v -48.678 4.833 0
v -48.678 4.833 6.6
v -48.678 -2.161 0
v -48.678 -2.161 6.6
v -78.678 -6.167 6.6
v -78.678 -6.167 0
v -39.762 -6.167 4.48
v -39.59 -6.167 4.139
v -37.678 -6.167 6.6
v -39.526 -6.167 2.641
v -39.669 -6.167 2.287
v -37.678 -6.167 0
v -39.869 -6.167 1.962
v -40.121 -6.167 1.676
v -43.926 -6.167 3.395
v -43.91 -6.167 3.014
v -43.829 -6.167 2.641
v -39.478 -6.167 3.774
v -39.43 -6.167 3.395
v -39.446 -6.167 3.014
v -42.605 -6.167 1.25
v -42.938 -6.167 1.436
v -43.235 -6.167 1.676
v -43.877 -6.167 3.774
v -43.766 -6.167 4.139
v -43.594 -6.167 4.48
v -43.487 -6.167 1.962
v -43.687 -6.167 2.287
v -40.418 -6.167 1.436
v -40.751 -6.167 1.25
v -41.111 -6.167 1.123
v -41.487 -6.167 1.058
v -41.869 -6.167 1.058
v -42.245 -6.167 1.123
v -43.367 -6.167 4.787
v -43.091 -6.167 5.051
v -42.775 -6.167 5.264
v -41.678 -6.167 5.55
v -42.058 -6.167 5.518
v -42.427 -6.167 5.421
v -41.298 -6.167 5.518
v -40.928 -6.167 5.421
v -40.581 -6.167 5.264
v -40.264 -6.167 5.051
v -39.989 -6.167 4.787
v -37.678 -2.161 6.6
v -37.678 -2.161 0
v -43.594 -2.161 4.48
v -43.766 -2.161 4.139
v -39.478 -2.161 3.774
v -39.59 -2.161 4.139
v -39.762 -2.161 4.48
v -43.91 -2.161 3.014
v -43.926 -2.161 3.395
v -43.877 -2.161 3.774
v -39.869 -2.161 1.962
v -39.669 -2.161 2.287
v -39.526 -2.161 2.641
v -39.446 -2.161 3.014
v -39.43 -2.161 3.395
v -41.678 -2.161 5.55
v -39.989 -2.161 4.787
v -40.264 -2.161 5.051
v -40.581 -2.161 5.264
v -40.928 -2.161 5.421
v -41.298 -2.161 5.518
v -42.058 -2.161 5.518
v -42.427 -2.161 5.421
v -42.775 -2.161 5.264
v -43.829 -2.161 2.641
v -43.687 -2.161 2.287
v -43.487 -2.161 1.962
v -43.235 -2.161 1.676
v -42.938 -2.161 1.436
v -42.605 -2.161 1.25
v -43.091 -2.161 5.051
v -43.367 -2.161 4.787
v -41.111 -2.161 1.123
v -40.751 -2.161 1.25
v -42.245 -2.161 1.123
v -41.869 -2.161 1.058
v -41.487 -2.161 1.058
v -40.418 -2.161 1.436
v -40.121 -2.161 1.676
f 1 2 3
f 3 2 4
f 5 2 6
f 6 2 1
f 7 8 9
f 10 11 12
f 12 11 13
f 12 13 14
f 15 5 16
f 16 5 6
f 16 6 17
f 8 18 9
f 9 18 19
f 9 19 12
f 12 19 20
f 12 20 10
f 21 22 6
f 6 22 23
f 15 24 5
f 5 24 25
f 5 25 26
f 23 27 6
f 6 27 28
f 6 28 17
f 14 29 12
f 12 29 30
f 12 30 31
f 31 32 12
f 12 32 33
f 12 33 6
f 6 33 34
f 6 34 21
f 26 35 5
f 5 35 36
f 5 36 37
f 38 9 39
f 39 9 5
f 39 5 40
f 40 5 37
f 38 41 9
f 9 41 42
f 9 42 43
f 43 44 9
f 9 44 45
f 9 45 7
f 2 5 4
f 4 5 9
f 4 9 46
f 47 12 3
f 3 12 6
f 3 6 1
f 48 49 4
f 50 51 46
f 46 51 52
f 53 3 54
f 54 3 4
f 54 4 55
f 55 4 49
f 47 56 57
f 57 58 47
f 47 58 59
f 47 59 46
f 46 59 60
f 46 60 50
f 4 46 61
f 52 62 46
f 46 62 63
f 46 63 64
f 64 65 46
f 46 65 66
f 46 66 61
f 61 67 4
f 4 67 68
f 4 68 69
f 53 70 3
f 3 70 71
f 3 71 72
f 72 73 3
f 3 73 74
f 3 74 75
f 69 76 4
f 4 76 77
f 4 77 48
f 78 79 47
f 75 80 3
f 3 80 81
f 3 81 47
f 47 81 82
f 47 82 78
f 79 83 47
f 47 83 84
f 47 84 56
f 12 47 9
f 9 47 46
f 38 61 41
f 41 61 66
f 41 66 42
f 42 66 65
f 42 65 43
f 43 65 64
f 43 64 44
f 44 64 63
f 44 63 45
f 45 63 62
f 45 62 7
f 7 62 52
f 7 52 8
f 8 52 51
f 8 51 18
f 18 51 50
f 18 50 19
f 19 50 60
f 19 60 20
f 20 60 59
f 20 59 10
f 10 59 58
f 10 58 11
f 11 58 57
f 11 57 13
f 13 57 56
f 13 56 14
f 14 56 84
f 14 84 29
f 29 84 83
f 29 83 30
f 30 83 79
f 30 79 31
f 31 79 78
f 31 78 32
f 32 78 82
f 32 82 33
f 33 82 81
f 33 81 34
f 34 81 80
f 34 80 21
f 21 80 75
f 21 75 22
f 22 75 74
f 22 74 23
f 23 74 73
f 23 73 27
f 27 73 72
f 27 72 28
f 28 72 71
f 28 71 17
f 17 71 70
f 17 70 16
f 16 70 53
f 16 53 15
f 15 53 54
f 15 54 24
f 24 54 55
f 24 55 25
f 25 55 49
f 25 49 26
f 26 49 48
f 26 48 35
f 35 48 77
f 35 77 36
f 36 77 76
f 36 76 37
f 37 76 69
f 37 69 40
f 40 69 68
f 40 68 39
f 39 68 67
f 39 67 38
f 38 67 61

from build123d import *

# Parameters (mm, degrees)
BOSS_EXTRUDE1_DEPTH  = 6.6
SKETCH4_W            = 6.6
SKETCH4_H            = 4.006069052
BOSS_EXTRUDE2_DEPTH  = 11
M4_CLEARANCE_HOLE1_D = 4.5


with BuildPart() as part:
    # Sketch2 → Boss-Extrude1 (new body)
    with BuildSketch(Plane.XY):
        Polygon((-48.677836014, 4.833253272), (-48.677836014, -6.166746728), (-78.677836014, -6.166746728), align=None)
    extrude(amount=BOSS_EXTRUDE1_DEPTH)

    # Sketch4 → Boss-Extrude2 (add)
    with BuildSketch(Plane(origin=(-48.677836014, 0, 0), x_dir=(0, 0, -1), z_dir=(1, 0, 0))):
        with Locations((-3.3, -4.163712202)):
            Rectangle(SKETCH4_W, SKETCH4_H)
    extrude(amount=BOSS_EXTRUDE2_DEPTH)

    # M4 Clearance Hole1 (through all)
    with Locations(Plane(origin=(-41.677836014, -2.160677676, 3.3), x_dir=(0, 0, 1), z_dir=(0, 1, 0))):
        with Locations((0, 0)):
            Hole(M4_CLEARANCE_HOLE1_D / 2)


solid = part.part
